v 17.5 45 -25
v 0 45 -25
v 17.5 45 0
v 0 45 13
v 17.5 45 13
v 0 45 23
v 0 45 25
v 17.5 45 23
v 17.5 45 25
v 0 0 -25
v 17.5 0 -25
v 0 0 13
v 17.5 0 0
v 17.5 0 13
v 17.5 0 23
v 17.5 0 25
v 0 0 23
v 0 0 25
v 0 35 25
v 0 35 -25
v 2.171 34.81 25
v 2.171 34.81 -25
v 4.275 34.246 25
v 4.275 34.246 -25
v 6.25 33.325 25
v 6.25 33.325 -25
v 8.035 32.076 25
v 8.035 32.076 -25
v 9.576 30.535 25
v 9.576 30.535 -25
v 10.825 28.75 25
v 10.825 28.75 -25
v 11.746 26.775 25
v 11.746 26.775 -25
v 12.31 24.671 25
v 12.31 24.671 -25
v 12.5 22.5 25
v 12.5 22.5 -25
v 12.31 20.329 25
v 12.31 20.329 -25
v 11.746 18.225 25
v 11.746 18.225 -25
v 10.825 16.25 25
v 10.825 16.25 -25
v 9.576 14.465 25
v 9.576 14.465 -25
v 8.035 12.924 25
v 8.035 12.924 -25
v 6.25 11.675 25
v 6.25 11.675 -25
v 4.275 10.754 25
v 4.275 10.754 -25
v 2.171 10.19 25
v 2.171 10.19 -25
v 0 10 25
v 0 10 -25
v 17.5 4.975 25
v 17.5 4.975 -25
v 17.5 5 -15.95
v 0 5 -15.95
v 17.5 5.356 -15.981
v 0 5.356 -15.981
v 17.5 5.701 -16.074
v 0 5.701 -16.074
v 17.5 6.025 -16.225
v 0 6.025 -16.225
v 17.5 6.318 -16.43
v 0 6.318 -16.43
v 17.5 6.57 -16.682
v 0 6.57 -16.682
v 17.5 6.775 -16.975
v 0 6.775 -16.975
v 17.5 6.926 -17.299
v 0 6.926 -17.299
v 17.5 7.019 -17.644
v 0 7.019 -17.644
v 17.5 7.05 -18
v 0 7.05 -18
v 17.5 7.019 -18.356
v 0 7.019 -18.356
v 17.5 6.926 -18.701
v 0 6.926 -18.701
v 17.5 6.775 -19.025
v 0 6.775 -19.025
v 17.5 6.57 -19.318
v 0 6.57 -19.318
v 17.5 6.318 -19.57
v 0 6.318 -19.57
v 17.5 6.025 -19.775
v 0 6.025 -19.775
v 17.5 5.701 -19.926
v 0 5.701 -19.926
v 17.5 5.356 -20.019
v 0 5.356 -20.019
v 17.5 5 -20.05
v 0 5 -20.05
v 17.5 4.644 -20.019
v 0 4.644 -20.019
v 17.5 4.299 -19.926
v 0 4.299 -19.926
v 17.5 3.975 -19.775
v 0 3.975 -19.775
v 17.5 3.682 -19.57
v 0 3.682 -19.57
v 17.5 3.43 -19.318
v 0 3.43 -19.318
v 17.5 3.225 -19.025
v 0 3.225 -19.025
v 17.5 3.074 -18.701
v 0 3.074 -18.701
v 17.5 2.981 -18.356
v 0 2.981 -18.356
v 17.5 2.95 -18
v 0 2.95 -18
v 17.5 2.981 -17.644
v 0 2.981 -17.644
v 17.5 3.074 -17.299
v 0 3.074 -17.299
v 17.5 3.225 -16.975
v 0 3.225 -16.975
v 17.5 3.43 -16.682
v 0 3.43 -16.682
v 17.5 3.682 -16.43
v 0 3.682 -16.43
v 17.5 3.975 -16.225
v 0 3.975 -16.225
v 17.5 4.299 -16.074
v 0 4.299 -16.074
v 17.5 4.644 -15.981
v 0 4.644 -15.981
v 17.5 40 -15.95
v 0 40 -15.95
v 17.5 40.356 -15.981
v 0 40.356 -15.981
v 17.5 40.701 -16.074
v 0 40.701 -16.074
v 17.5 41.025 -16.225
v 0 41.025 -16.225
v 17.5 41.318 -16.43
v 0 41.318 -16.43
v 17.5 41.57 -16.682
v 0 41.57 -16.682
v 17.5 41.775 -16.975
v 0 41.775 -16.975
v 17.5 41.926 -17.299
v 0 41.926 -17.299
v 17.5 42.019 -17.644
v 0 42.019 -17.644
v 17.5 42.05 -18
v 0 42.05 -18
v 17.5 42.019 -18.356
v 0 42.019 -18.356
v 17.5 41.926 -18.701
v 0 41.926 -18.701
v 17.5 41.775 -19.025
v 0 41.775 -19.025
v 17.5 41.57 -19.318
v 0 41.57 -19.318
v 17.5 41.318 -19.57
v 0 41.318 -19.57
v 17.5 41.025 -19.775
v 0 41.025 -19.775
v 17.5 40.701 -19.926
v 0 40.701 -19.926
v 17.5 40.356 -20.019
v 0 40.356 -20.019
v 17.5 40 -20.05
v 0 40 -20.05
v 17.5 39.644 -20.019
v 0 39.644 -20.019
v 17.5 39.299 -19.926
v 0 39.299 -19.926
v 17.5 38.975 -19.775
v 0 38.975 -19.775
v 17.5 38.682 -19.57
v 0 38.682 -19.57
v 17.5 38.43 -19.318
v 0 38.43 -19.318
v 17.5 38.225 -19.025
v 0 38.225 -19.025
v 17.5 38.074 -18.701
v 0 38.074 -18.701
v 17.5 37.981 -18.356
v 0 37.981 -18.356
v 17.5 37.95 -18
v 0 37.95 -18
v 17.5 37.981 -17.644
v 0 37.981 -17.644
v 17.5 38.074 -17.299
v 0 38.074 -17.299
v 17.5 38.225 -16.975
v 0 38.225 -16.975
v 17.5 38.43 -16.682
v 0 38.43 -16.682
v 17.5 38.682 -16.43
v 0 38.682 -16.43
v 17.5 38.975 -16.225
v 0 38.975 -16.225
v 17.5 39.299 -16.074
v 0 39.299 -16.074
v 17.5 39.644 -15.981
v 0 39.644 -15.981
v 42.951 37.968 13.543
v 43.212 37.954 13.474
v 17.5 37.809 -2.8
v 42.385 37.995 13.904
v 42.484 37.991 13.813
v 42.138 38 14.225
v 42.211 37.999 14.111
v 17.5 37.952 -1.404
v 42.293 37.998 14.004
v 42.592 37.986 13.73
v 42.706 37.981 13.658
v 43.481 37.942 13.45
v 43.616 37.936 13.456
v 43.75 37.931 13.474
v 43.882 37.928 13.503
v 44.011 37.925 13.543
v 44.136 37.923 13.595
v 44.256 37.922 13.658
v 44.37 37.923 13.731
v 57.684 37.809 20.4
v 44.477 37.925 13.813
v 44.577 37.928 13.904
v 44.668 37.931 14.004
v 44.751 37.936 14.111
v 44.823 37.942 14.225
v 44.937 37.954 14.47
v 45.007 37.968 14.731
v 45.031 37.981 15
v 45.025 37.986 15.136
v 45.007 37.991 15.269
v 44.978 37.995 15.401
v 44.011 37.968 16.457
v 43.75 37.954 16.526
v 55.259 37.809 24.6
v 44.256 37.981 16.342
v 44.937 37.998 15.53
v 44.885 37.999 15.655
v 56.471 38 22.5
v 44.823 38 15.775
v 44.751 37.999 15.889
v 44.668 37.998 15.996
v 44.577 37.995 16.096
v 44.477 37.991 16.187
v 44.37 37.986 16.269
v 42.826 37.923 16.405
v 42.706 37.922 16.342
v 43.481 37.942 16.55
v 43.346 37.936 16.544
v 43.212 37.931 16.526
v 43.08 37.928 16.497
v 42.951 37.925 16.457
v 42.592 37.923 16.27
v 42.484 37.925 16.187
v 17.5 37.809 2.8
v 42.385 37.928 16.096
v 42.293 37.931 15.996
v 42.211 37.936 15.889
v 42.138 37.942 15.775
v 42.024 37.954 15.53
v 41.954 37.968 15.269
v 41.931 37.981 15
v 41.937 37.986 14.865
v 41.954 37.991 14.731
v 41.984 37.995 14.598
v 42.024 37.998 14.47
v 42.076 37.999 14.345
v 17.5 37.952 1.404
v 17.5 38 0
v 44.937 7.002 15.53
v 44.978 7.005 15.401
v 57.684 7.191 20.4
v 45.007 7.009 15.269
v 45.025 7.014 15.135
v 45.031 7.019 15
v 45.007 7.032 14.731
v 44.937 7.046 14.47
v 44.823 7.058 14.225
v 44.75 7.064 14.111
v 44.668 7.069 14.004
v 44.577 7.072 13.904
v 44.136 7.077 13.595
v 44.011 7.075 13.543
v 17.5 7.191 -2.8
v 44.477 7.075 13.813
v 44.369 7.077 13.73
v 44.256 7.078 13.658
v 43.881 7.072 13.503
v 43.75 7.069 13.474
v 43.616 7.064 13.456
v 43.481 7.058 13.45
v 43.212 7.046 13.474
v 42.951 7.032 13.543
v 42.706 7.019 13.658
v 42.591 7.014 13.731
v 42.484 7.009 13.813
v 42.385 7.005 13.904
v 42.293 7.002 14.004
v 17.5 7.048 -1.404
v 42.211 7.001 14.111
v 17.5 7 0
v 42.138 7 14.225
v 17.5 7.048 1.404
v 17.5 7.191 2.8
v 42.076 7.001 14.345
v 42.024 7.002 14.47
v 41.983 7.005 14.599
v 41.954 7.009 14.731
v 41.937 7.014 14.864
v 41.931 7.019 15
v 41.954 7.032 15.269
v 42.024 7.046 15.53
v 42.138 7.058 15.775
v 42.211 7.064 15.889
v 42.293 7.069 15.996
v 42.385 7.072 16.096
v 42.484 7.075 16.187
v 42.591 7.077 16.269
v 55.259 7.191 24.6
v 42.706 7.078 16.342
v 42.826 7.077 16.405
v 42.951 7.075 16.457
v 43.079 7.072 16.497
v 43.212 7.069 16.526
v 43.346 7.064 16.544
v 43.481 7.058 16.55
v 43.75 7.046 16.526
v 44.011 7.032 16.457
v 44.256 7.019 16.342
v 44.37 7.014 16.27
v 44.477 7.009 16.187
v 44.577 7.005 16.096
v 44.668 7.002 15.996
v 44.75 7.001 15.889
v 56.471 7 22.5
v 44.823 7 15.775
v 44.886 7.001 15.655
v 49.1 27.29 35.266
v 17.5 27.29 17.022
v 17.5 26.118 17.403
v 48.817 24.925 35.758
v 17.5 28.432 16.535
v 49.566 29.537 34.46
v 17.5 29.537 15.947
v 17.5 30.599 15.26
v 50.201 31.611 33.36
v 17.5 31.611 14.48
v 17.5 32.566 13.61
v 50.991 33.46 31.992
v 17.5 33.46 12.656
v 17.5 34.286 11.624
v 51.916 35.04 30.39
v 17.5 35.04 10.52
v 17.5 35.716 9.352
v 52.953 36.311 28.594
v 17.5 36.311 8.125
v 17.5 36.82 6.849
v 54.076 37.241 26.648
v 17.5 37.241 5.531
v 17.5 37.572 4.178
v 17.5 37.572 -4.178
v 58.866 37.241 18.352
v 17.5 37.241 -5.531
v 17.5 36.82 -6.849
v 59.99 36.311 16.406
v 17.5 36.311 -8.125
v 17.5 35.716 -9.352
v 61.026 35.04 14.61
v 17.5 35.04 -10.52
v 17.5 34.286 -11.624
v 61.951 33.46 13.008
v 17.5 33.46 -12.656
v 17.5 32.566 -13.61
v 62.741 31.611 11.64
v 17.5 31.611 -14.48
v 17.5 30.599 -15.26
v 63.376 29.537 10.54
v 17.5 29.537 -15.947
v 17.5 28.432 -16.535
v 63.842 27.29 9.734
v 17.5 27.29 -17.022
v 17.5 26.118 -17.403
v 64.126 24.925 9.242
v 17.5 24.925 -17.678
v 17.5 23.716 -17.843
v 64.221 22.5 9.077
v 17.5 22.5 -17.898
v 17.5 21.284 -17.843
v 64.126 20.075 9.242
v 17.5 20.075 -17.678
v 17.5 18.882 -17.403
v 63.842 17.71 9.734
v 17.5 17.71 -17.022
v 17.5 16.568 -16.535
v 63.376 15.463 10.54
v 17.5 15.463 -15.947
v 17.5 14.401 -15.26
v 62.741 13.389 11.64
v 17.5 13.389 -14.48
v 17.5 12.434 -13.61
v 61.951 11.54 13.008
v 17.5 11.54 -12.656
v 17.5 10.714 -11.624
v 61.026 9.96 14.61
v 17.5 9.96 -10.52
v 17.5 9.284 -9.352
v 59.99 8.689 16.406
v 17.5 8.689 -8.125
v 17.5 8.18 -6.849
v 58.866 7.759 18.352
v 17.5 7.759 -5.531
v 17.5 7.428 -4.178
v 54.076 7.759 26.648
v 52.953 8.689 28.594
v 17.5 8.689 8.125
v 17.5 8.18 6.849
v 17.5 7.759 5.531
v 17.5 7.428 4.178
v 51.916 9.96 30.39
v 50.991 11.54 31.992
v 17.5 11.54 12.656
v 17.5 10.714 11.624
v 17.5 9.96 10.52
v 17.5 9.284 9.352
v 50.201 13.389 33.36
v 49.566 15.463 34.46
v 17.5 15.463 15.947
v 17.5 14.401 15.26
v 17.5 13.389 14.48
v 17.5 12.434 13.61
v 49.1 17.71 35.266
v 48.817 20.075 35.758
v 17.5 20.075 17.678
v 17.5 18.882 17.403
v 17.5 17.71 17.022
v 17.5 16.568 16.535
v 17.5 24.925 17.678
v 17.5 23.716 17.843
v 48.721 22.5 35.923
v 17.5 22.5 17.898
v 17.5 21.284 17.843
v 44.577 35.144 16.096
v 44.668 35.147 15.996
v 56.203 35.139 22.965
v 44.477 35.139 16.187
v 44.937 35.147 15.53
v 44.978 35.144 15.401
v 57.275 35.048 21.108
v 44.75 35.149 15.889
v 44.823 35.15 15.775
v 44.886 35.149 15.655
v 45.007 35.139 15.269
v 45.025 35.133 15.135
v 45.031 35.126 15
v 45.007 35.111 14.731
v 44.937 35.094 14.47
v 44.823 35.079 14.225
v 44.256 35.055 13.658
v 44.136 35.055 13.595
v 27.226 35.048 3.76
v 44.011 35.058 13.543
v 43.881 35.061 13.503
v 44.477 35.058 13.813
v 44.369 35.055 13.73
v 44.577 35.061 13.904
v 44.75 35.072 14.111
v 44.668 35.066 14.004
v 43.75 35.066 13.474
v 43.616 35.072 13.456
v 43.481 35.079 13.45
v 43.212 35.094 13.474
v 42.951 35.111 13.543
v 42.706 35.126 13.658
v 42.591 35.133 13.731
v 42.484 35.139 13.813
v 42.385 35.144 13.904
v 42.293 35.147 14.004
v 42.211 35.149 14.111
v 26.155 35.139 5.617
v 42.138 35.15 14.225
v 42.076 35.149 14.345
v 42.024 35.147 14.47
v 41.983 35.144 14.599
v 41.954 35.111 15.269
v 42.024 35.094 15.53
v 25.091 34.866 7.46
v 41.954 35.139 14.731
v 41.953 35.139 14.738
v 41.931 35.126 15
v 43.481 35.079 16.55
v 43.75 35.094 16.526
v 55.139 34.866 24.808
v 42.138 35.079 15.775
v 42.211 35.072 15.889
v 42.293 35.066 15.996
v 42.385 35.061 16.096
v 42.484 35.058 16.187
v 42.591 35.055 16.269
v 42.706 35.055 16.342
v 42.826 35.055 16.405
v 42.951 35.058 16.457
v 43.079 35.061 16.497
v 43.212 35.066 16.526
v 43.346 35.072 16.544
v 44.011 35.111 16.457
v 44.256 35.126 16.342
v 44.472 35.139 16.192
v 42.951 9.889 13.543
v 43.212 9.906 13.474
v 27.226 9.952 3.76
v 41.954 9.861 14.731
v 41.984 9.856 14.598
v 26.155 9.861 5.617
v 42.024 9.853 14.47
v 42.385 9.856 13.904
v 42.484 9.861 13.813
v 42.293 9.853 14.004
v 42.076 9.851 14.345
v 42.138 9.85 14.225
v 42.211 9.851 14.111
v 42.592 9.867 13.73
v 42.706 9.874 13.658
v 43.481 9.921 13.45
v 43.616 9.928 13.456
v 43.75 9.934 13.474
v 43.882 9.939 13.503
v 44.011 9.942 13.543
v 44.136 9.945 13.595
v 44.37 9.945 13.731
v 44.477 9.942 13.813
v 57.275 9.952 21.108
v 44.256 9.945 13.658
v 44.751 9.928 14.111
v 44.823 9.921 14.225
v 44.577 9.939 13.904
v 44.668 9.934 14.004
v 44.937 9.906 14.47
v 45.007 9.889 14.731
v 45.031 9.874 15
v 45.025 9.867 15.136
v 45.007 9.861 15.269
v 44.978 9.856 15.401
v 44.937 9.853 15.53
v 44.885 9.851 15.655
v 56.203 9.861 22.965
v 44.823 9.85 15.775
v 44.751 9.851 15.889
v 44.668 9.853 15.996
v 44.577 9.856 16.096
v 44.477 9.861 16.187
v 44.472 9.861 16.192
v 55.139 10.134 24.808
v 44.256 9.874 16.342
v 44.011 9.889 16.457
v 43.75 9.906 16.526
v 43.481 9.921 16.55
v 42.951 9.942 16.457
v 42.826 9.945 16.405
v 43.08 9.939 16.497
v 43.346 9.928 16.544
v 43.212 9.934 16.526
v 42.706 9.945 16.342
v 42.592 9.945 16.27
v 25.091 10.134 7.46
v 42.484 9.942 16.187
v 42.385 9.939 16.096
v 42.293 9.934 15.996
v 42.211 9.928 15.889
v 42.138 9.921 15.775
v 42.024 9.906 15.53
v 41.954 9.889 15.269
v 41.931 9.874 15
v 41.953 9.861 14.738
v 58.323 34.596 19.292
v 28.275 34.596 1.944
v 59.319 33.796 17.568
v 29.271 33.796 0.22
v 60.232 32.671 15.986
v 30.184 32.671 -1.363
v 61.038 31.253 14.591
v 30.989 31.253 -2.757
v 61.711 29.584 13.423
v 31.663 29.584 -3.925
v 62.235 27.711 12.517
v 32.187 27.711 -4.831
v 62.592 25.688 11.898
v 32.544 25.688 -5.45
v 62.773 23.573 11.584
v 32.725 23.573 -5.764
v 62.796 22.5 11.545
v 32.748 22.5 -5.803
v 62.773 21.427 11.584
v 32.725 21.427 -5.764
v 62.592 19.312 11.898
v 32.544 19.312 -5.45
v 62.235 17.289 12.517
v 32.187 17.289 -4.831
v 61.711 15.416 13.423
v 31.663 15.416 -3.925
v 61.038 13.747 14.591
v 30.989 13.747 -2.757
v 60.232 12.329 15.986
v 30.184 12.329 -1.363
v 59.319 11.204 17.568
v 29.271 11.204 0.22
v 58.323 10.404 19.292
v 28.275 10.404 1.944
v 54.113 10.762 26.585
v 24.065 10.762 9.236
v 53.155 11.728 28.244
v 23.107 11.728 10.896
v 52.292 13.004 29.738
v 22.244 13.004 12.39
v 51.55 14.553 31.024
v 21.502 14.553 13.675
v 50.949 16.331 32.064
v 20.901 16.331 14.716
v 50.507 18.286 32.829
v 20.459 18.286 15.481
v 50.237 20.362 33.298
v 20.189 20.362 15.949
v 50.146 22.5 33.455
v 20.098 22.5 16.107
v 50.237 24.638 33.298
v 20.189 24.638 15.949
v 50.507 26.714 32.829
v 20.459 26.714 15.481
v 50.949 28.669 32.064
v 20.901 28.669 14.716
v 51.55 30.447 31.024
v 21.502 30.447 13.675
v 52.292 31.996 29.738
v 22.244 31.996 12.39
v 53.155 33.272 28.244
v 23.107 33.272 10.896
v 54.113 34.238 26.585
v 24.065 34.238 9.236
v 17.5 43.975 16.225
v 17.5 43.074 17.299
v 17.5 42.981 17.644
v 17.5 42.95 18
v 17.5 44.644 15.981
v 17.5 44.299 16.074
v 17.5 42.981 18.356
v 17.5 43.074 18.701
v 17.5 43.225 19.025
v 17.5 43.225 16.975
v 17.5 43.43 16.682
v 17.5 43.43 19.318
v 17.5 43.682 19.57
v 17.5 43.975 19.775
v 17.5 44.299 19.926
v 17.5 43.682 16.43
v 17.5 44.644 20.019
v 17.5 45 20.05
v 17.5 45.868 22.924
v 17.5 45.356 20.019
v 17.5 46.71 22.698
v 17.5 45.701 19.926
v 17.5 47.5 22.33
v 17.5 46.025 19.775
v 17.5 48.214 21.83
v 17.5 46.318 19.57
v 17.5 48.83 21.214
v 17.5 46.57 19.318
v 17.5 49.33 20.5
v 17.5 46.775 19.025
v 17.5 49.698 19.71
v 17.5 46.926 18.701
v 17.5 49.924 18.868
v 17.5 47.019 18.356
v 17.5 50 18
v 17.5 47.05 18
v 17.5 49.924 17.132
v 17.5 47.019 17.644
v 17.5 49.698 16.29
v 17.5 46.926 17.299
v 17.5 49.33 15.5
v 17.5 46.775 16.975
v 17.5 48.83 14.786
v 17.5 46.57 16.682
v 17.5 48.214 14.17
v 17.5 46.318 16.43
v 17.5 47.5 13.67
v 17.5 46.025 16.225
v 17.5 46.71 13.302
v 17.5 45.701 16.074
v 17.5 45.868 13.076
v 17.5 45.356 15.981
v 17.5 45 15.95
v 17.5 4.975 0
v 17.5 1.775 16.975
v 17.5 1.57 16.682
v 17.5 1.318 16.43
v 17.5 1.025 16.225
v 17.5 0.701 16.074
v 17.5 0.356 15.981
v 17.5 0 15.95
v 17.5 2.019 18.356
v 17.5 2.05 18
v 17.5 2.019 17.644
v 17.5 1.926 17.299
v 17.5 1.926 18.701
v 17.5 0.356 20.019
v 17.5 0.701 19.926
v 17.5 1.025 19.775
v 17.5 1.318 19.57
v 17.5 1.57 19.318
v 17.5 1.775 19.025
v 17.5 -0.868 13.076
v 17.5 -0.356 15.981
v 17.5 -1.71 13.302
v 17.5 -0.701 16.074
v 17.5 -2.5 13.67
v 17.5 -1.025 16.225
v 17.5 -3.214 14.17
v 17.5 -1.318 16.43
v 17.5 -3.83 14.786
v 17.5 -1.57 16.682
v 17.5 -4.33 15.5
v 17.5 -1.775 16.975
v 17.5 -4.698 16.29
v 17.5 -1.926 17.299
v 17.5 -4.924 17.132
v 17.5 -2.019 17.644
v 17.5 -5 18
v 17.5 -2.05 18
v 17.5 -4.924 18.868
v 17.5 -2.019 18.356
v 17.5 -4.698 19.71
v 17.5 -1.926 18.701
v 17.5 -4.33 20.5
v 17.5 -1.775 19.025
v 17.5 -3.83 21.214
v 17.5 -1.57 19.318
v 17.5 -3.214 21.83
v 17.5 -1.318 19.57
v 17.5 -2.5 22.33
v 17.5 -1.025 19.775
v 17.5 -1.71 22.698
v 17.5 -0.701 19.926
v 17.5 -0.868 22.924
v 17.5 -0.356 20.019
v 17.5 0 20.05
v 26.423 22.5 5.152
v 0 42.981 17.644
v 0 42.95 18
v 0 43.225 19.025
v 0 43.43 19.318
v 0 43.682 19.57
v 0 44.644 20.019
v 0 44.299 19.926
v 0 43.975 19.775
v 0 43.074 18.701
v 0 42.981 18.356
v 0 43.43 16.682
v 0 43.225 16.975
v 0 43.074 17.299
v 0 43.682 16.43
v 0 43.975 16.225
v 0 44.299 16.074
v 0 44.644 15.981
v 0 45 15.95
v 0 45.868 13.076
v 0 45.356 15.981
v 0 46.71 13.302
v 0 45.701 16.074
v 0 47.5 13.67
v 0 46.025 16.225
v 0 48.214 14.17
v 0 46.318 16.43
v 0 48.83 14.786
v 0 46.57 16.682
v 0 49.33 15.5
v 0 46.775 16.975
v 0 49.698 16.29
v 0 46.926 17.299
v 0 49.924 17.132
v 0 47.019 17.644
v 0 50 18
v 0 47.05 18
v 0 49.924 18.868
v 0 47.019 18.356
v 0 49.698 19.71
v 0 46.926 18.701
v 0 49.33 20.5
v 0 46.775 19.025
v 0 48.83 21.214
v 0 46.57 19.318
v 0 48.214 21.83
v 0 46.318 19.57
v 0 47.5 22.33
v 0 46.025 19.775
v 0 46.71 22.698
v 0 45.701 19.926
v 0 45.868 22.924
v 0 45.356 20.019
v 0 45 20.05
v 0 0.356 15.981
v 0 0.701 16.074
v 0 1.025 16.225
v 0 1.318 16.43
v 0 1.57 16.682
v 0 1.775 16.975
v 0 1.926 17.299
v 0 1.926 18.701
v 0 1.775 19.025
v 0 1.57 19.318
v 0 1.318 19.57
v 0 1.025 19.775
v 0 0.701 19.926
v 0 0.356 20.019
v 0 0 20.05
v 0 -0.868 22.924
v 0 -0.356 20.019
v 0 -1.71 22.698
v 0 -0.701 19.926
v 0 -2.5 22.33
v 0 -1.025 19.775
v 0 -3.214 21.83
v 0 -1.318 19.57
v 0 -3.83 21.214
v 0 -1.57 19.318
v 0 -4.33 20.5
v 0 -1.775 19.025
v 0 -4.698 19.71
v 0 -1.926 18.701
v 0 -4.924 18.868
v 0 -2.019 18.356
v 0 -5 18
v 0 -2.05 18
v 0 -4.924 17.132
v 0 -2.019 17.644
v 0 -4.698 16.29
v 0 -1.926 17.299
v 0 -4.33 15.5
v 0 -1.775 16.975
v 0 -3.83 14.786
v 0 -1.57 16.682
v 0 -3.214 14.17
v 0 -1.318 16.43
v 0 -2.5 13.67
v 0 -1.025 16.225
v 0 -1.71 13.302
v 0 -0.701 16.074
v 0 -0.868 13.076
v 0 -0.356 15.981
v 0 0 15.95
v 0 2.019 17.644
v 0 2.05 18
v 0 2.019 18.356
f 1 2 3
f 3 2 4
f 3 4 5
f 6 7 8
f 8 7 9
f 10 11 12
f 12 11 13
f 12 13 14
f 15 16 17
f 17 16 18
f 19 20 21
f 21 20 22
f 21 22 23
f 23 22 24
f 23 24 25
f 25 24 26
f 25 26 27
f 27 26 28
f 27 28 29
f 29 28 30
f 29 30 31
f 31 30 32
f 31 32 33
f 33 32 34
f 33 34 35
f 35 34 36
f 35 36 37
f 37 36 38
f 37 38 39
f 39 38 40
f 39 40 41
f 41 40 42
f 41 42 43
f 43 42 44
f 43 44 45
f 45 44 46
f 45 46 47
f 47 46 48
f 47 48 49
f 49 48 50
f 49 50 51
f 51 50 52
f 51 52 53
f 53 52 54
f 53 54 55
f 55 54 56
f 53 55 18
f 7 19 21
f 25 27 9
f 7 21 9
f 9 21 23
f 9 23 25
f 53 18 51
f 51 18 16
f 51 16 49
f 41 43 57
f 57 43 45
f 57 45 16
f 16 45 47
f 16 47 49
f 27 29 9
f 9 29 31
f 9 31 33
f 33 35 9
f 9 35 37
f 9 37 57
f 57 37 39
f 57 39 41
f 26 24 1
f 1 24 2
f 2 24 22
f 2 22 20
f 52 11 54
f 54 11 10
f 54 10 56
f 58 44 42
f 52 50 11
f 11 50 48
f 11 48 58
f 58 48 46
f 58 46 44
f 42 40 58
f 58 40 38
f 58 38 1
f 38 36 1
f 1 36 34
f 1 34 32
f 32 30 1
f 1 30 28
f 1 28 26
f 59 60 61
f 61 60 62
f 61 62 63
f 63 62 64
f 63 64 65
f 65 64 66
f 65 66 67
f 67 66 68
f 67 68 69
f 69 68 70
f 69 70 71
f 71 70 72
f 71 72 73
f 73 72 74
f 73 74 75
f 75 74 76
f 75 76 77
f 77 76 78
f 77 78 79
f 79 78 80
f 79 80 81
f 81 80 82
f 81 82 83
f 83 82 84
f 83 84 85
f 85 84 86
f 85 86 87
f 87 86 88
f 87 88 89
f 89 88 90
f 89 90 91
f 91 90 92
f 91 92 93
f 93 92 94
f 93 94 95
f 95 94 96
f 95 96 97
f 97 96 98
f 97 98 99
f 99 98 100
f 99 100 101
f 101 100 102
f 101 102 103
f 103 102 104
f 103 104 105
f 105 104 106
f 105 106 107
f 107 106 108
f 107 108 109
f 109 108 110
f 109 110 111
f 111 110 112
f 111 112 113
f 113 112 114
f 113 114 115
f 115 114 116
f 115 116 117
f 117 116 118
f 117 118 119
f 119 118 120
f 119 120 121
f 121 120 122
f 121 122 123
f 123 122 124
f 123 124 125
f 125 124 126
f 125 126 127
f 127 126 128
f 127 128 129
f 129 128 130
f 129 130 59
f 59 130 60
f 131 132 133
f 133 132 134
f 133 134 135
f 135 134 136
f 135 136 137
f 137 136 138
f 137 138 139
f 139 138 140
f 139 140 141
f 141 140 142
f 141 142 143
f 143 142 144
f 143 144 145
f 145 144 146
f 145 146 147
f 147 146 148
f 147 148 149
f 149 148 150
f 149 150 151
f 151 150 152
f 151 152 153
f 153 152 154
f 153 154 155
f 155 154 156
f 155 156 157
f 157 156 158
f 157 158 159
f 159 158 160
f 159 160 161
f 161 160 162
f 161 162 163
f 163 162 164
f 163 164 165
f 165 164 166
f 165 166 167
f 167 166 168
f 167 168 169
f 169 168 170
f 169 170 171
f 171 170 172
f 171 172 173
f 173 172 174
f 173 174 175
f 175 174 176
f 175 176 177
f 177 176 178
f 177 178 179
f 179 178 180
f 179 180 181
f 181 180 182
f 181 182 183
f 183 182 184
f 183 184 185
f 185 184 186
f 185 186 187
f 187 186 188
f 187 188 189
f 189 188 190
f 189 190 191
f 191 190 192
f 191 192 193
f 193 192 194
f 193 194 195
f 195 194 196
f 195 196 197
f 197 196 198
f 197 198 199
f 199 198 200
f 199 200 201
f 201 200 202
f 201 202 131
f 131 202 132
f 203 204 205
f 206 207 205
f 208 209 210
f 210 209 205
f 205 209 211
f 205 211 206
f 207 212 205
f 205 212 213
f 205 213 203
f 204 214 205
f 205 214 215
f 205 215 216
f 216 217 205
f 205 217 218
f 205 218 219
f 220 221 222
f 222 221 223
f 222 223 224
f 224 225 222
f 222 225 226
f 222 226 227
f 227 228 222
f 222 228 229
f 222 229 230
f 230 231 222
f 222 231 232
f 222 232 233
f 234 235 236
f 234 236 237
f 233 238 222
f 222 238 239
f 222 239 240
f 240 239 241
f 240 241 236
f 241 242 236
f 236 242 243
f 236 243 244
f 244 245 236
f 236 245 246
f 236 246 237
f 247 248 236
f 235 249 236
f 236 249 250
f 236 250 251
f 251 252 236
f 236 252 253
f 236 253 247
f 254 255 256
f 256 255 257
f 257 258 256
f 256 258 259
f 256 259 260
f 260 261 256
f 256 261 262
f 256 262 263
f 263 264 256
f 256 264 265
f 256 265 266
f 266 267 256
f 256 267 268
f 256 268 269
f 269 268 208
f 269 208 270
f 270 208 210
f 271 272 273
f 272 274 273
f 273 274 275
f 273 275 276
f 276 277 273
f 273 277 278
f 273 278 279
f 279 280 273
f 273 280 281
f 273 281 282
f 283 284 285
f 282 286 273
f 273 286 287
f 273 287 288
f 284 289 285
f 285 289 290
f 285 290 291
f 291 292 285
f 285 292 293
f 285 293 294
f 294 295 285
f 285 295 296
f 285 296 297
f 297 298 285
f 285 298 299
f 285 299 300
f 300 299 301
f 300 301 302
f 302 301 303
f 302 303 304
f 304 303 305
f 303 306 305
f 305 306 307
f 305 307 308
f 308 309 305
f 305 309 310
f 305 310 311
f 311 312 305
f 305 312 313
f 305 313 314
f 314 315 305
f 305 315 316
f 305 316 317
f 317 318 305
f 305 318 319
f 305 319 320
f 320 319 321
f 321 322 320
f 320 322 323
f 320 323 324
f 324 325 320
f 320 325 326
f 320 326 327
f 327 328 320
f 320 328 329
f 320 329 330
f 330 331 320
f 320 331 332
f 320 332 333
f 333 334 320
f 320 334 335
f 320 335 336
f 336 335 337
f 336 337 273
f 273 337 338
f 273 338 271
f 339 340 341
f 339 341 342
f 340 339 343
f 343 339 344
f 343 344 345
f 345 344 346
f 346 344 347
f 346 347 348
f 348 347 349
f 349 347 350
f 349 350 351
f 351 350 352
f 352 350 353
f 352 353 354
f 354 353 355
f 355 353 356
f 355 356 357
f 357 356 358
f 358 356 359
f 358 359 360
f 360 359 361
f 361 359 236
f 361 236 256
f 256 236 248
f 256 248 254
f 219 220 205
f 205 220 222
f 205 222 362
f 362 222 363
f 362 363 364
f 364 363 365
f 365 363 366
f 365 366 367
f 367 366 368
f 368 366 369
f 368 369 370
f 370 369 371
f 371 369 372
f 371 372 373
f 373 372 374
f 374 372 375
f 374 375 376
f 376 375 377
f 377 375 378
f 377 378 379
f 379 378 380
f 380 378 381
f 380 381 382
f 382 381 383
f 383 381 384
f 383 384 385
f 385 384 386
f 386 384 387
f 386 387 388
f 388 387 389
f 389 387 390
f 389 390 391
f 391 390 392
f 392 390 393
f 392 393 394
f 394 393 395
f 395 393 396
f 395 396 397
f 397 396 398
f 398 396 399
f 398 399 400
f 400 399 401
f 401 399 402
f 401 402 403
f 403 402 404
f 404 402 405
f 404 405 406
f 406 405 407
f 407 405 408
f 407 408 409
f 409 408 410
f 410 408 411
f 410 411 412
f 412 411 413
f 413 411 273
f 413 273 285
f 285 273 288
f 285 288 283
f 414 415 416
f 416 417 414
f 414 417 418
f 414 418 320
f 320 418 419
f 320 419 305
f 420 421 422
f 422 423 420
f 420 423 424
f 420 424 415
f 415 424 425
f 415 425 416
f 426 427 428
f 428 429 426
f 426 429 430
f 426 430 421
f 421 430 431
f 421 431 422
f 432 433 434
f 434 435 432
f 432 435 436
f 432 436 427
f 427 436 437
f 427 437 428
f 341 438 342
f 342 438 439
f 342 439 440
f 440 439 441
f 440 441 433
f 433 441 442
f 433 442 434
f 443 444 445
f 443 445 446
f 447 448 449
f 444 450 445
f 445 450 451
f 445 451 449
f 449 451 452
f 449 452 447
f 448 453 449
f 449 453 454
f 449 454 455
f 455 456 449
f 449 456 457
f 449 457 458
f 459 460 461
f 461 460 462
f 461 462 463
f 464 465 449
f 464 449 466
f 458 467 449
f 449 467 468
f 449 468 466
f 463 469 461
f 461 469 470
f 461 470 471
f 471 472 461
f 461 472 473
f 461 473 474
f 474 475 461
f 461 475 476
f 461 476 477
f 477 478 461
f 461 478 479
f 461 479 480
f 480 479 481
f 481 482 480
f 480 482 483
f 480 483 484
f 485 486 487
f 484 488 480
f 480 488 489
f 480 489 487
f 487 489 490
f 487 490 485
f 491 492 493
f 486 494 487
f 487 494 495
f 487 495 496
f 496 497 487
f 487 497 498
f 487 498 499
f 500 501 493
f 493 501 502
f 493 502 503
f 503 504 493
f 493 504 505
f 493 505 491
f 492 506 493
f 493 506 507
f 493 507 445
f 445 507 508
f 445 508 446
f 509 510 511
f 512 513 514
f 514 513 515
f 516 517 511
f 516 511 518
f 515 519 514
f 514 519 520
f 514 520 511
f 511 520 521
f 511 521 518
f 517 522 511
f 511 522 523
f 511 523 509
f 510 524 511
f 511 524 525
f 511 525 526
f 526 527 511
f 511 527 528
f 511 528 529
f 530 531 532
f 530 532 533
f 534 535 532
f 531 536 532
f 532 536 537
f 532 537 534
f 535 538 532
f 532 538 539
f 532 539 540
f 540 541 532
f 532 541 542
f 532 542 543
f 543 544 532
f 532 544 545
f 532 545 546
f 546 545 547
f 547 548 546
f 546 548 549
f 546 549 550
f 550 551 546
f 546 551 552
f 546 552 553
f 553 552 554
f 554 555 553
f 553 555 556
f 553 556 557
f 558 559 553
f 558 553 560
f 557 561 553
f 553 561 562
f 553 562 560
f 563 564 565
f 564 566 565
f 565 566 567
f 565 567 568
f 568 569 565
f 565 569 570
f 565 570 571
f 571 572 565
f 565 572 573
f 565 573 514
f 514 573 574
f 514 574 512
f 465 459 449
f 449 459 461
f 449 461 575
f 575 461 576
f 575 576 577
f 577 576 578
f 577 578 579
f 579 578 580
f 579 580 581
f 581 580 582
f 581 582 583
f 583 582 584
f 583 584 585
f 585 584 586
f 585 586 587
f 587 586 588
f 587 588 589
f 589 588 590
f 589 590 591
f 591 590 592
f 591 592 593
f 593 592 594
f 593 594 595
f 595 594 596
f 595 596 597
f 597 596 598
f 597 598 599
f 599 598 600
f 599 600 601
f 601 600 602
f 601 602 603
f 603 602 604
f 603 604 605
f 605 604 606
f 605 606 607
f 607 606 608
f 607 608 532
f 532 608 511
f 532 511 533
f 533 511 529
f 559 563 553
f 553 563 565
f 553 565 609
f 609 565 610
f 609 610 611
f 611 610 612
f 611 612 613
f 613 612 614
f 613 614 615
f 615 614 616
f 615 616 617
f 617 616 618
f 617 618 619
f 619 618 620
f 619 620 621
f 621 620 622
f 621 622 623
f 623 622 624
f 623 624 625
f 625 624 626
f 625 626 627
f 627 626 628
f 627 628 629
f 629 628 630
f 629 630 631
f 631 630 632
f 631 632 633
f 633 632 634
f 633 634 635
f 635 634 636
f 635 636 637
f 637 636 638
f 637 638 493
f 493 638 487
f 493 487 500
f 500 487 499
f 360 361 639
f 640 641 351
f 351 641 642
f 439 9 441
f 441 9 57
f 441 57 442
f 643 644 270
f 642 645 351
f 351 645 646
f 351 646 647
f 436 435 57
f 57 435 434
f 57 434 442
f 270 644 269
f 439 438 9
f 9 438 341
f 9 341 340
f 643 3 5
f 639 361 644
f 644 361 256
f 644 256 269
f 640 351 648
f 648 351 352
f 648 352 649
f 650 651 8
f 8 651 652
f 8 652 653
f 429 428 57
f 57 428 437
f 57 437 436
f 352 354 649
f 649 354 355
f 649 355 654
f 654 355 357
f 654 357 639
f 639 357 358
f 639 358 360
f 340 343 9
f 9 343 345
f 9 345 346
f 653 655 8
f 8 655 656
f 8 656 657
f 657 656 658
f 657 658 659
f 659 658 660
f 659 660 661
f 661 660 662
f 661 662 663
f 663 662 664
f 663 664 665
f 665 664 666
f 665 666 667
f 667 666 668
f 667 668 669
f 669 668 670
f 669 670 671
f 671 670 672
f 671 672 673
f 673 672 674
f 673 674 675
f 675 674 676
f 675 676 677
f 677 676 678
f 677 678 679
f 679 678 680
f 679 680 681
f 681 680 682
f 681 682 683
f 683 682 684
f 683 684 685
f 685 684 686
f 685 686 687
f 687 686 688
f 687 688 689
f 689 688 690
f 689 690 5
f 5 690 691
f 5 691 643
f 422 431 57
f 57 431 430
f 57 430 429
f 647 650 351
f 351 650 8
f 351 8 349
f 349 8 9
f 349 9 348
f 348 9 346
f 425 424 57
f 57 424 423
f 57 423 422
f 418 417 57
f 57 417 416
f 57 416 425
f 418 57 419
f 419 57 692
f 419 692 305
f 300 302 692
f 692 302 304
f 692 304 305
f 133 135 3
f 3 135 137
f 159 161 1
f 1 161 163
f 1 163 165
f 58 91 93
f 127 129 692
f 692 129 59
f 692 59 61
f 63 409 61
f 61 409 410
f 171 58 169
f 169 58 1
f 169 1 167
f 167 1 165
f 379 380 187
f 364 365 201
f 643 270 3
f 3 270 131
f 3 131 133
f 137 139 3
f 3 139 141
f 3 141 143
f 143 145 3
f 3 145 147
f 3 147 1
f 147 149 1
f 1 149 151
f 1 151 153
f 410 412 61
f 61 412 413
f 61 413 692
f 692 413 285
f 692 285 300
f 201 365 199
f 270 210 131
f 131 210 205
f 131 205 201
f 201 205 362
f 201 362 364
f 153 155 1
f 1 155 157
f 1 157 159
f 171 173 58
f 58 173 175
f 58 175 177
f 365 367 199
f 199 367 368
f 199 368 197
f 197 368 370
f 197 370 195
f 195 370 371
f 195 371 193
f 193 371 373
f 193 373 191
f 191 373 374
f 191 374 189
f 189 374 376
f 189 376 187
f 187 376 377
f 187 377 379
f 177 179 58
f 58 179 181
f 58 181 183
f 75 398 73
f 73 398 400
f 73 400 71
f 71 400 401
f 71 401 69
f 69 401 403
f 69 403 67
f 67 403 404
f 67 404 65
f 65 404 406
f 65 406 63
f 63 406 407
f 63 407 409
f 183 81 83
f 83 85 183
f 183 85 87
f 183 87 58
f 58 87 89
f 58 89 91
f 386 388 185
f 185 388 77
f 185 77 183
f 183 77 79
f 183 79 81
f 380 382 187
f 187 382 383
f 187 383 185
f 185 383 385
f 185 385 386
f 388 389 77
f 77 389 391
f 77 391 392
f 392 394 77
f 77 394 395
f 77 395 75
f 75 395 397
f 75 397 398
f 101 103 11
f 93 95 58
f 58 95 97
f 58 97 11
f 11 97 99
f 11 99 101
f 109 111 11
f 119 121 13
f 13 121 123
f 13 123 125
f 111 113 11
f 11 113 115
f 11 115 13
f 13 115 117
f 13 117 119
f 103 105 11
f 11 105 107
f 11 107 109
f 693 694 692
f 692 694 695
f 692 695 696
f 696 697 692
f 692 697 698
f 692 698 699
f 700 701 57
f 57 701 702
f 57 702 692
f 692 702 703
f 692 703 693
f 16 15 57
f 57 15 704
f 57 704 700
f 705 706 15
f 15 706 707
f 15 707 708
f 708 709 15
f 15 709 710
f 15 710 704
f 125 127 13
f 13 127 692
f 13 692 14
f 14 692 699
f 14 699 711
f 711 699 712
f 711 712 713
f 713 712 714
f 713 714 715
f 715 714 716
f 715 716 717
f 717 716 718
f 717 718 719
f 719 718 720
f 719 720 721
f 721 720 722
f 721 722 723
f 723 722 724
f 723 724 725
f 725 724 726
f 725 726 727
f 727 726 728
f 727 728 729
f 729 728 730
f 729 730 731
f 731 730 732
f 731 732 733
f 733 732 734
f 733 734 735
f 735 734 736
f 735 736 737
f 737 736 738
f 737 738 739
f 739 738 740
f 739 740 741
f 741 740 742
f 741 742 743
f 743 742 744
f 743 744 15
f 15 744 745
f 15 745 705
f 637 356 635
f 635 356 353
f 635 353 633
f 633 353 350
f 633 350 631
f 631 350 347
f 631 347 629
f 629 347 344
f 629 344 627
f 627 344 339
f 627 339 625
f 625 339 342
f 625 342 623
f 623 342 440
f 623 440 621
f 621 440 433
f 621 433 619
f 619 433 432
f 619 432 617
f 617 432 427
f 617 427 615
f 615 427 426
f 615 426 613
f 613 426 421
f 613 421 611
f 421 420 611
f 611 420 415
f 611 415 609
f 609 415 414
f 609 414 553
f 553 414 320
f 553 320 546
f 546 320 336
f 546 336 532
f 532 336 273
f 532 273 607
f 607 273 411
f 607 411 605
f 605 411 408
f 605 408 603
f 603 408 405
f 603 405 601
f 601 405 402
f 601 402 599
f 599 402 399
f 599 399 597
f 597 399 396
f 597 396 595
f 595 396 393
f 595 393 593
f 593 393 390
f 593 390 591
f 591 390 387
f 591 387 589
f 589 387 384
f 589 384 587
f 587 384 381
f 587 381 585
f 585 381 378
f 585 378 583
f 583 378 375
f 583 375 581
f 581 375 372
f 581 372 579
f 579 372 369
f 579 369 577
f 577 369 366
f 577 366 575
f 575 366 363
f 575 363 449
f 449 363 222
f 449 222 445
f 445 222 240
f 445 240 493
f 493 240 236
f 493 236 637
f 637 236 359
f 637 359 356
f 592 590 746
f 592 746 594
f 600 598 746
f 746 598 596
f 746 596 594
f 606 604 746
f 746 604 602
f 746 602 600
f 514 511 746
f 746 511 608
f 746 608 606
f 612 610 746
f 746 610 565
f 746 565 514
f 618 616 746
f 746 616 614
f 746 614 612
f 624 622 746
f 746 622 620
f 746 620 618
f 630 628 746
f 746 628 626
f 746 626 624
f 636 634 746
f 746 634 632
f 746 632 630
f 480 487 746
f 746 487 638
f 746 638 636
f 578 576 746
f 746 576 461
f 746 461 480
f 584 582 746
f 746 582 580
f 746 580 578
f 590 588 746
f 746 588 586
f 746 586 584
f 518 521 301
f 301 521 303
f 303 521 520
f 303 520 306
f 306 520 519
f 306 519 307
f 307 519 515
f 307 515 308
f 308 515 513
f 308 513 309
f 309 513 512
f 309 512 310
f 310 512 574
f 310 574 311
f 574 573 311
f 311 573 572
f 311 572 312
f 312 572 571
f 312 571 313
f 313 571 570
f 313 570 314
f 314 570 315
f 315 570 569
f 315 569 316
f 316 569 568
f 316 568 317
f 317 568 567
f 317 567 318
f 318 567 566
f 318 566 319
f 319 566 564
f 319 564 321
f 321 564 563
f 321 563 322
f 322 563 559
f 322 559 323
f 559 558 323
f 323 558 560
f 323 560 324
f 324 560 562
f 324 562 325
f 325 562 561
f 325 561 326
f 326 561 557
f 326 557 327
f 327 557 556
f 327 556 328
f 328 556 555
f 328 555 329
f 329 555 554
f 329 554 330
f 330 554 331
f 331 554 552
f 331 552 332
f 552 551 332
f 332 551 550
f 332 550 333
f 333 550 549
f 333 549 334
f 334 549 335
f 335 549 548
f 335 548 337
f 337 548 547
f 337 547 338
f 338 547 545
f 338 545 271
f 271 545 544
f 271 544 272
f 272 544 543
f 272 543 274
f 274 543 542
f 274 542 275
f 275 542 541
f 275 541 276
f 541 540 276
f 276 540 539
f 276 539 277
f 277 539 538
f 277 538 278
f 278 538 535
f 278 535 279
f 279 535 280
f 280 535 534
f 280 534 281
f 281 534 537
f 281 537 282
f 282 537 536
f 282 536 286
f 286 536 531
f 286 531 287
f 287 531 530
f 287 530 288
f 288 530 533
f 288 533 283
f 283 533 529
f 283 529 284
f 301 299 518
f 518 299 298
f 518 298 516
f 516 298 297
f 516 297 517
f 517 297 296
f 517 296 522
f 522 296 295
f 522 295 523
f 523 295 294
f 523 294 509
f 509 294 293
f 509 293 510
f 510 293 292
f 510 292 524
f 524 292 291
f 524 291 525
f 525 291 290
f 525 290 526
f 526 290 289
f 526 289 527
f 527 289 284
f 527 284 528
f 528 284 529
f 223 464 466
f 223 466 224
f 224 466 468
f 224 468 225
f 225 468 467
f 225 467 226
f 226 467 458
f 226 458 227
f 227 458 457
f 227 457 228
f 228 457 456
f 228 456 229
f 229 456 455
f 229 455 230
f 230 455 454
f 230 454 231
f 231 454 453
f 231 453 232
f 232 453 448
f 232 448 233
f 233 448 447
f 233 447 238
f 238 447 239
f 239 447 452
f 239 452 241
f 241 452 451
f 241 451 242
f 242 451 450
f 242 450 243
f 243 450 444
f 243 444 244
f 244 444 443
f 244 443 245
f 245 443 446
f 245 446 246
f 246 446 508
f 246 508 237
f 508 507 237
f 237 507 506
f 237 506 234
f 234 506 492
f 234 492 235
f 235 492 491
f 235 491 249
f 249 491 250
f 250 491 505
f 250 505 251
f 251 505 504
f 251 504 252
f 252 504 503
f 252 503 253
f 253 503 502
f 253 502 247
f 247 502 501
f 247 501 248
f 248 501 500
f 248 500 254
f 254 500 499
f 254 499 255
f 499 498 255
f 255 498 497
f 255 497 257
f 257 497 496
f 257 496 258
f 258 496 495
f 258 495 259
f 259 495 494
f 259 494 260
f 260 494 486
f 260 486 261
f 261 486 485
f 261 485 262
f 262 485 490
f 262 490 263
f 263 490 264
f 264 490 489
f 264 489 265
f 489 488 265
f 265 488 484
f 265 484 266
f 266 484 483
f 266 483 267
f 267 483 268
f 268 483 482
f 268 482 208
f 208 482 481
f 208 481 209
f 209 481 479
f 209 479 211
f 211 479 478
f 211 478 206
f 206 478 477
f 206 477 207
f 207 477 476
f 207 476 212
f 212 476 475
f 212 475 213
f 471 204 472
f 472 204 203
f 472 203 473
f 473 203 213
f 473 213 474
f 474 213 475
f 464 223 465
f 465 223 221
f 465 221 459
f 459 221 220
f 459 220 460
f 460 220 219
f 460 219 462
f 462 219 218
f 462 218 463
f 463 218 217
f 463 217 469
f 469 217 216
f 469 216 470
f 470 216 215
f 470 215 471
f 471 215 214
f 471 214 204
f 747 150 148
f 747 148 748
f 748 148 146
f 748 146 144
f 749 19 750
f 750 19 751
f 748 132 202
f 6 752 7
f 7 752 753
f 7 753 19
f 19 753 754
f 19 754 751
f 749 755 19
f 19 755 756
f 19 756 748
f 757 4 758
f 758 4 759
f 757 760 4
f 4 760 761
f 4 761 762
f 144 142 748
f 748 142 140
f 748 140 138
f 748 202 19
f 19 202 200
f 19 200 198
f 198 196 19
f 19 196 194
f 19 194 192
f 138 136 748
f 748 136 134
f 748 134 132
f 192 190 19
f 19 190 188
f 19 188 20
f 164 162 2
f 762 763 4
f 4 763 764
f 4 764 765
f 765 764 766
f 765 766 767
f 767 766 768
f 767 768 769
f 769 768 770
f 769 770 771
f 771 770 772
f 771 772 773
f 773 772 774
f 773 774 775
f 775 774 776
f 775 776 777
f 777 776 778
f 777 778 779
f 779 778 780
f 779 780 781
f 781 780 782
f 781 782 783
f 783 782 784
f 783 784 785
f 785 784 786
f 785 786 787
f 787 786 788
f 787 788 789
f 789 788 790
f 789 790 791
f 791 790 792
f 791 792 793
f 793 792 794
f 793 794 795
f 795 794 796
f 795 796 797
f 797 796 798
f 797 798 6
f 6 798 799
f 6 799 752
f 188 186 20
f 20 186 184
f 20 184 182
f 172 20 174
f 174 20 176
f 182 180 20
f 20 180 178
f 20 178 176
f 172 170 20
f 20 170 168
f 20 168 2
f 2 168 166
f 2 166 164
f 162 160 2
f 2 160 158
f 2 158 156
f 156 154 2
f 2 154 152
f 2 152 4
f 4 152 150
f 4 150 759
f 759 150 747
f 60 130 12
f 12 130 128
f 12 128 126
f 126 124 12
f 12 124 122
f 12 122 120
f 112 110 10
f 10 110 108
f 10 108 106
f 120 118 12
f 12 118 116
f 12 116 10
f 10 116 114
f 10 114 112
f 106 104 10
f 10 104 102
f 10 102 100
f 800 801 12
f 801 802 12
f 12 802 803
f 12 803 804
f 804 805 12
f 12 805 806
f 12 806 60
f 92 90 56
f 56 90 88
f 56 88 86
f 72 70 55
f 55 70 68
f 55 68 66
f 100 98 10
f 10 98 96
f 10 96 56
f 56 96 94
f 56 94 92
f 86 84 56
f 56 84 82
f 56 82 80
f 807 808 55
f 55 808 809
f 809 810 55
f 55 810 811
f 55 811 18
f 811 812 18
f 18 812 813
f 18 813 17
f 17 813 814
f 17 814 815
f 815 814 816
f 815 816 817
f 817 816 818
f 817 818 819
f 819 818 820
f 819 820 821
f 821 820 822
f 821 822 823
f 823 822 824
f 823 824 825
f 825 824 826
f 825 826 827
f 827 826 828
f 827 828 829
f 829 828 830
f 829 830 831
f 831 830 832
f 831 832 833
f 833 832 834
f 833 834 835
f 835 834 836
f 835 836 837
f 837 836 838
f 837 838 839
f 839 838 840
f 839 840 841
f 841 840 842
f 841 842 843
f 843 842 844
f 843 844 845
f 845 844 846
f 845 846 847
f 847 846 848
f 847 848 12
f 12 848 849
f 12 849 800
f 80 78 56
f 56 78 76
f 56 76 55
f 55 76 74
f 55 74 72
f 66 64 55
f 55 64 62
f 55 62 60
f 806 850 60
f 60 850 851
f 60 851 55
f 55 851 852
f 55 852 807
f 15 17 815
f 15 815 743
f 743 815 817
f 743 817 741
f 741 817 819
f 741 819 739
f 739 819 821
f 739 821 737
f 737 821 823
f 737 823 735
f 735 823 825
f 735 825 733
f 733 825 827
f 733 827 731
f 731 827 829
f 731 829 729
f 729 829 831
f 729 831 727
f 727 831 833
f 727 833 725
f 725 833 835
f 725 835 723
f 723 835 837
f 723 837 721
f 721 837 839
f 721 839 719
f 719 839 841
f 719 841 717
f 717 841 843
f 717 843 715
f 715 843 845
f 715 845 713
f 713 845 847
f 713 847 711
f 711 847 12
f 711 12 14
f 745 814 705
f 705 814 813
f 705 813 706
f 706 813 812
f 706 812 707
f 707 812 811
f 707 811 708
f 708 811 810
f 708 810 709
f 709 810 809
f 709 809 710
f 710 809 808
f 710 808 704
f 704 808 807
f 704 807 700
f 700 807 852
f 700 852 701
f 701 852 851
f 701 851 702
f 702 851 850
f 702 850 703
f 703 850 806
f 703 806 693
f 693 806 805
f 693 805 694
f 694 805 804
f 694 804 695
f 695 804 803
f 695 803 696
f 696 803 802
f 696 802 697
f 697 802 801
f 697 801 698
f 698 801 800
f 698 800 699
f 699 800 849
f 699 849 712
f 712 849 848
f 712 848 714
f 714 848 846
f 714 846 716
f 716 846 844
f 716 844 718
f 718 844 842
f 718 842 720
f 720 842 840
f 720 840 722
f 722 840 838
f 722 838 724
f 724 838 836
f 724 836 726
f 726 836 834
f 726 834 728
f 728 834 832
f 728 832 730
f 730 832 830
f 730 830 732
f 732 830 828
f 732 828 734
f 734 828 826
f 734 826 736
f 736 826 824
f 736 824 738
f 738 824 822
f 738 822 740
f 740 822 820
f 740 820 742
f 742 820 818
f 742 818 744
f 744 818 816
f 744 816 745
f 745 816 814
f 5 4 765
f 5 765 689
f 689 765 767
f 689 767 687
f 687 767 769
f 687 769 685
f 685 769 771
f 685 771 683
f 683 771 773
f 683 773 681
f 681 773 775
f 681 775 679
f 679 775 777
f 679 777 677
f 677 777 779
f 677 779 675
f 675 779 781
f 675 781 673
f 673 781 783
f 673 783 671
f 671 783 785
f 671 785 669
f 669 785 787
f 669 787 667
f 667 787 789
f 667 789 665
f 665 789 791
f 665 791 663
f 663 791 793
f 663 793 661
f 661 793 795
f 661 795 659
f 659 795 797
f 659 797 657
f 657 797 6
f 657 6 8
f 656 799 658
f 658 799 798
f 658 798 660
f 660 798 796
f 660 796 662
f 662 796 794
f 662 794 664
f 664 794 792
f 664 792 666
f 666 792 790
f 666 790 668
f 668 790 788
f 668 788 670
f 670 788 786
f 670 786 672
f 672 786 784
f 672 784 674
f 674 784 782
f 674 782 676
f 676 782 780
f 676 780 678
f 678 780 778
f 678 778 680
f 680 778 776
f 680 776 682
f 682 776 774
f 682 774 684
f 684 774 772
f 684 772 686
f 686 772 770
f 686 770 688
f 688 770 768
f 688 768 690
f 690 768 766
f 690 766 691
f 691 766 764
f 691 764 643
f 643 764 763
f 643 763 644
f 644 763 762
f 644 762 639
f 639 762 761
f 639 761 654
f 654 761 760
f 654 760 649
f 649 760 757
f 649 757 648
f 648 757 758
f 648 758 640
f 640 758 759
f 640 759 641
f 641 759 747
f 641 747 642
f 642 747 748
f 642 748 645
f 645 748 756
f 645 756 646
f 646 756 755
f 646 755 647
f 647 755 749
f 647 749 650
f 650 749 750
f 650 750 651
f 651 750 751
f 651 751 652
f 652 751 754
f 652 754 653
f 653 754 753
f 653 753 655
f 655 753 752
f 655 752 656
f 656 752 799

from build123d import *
from build123d.topology import SkipClean

# Parameters (mm, degrees)
BOSS_EXTRUDE1_DEPTH             = 25
BOSS_EXTRUDE2_REACH             = 65.362
BOSS_EXTRUDE2_DIRECTION_2_DEPTH = 30
SKETCH9_R                       = 2.05
CUT_EXTRUDE3_DEPTH              = 35
BOSS_EXTRUDE5_REACH             = 62.896
SKETCH13_R                      = 1.55
CUT_EXTRUDE4_DEPTH              = 87.254538717
SKETCH16_W                      = 50
SKETCH16_H                      = 45
CUT_EXTRUDE5_DEPTH              = 17.5
BOSS_EXTRUDE6_DEPTH             = 17.5
SKETCH20_R                      = 2.05
CUT_EXTRUDE6_DEPTH              = 17.5


with BuildPart() as part:
    # Sketch1 → Boss-Extrude1 (new, symmetric)
    with BuildSketch(Plane.XY):
        with BuildLine():
            Line((-17.5, 22.5), (-17.5, 0))
            Line((-17.5, 0), (17.5, 0))
            Line((17.5, 0), (17.5, 22.5))
            Line((17.5, 22.5), (12.5, 22.5))
            ThreePointArc((12.5, 22.5), (0, 10), (-12.5, 22.5))
            Line((-12.5, 22.5), (-17.5, 22.5))
        make_face()
    boss_extrude1 = extrude(amount=BOSS_EXTRUDE1_DEPTH, both=True)

    # Boss-Extrude2: up to this face of the body (flat: up to its plane)
    boss_extrude2_end = Plane(part.part.faces().sort_by_distance((17.5, 11.25, 0))[0])
    # Sketch5 → Boss-Extrude2 (add, up to the picked face)
    with BuildSketch(Plane(origin=(26.115381057, 0, 15.077722283), x_dir=(0.500000000000001, 0, -0.8660254037844382), z_dir=(0.8660254037844382, 0, 0.500000000000001)), mode=Mode.PRIVATE) as boss_extrude2_sk1:
        with BuildLine():
            Line((-6.75, 22.5), (-3.9, 22.5))
            ThreePointArc((-3.9, 22.5), (8.75, 9.85), (21.4, 22.5))
            Line((21.4, 22.5), (24.25, 22.5))
            ThreePointArc((24.25, 22.5), (8.75, 7), (-6.75, 22.5))
        make_face()
    boss_extrude2_tool1 = split(extrude(boss_extrude2_sk1.sketch, amount=-BOSS_EXTRUDE2_REACH, mode=Mode.PRIVATE), bisect_by=boss_extrude2_end, keep=Keep.BOTH, mode=Mode.PRIVATE)
    boss_extrude2 = boss_extrude2_tool1.solids().sort_by(Axis((23.452881, 22.153409, 19.689308), (-0.8660254037844382, 0, -0.500000000000001)))[0]
    add(boss_extrude2)

    # Sketch5 → Boss-Extrude2 direction 2 (add)
    with BuildSketch(Plane(origin=(26.115381057, 0, 15.077722283), x_dir=(0.500000000000001, 0, -0.8660254037844382), z_dir=(0.8660254037844382, 0, 0.500000000000001))):
        with BuildLine():
            Line((-6.75, 22.5), (-3.9, 22.5))
            ThreePointArc((-3.9, 22.5), (8.75, 9.85), (21.4, 22.5))
            Line((21.4, 22.5), (24.25, 22.5))
            ThreePointArc((24.25, 22.5), (8.75, 7), (-6.75, 22.5))
        make_face()
    boss_extrude2_direction_2 = extrude(amount=BOSS_EXTRUDE2_DIRECTION_2_DEPTH)

    # Sketch9 → Cut-Extrude3 (cut)
    with BuildSketch(Plane.ZY.offset(17.5)):
        with Locations((-18, 5)):
            Circle(SKETCH9_R)
    cut_extrude3 = extrude(amount=-CUT_EXTRUDE3_DEPTH, mode=Mode.SUBTRACT)

    # Boss-Extrude5: up to this face of the body (flat: up to its plane)
    boss_extrude5_end = Plane(part.part.faces().sort_by_distance((17.5, 17.131173253, 0))[0])
    # Sketch12 → Boss-Extrude5 (add, up to the picked face)
    with BuildSketch(Plane(origin=(22.048076211, 0, 12.729462736), x_dir=(0.4999999999999999, 0, -0.8660254037844388), z_dir=(0.8660254037844388, 0, 0.4999999999999999)), mode=Mode.PRIVATE) as boss_extrude5_sk1:
        with BuildLine():
            Line((-3.9, 22.5), (21.4, 22.5))
            ThreePointArc((21.4, 22.5), (8.75, 9.85), (-3.9, 22.5))
        make_face()
    boss_extrude5_tool1 = split(extrude(boss_extrude5_sk1.sketch, amount=-BOSS_EXTRUDE5_REACH, mode=Mode.PRIVATE), bisect_by=boss_extrude5_end, keep=Keep.BOTH, mode=Mode.PRIVATE)
    boss_extrude5 = boss_extrude5_tool1.solids().sort_by(Axis((26.423076, 17.131173, 5.15174), (-0.8660254037844388, 0, -0.4999999999999999)))[0]
    add(boss_extrude5)

    # Mirror1: Boss-Extrude1, Boss-Extrude2, Boss-Extrude2 direction 2, Cut-Extrude3, Boss-Extrude5 across plane
    with SkipClean():  # the faces are left unmerged after this step: merging them gives an invalid solid
        add(boss_extrude1.mirror(Plane(origin=(17.5, 22.5, 25), x_dir=(0, 0, 1), z_dir=(0, -1, 0))))
        add(boss_extrude2.mirror(Plane(origin=(17.5, 22.5, 25), x_dir=(0, 0, 1), z_dir=(0, -1, 0))))
        add(boss_extrude2_direction_2.mirror(Plane(origin=(17.5, 22.5, 25), x_dir=(0, 0, 1), z_dir=(0, -1, 0))))
        add(cut_extrude3.mirror(Plane(origin=(17.5, 22.5, 25), x_dir=(0, 0, 1), z_dir=(0, -1, 0))), mode=Mode.SUBTRACT)
        add(boss_extrude5.mirror(Plane(origin=(17.5, 22.5, 25), x_dir=(0, 0, 1), z_dir=(0, -1, 0))))

    # Sketch13 → Cut-Extrude4 (cut, through all)
    with SkipClean():  # the faces are left unmerged after this step: merging them gives an invalid solid
        with BuildSketch(Plane(origin=(0, 0, 0), x_dir=(1, 0, 0), z_dir=(0, 1, 0))):
            with Locations(Location((43.480762114, -15, 0), (0, 0, 90))):
                Circle(SKETCH13_R)
        extrude(amount=CUT_EXTRUDE4_DEPTH, mode=Mode.SUBTRACT)

    # Sketch16 → Cut-Extrude5 (cut)
    with SkipClean():  # the faces are left unmerged after this step: merging them gives an invalid solid
        with BuildSketch(Plane(origin=(0, 0, 0), x_dir=(0, 0, -1), z_dir=(1, 0, 0))):
            with Locations((0, 22.5)):
                Rectangle(SKETCH16_W, SKETCH16_H)
        extrude(amount=-CUT_EXTRUDE5_DEPTH, mode=Mode.SUBTRACT)
    add(part.part.scale(1), mode=Mode.REPLACE)  # the faces are merged on a copy

    # Sketch18 → Boss-Extrude6 (add)
    with BuildSketch(Plane.ZY):
        with BuildLine():
            Line((13, 0), (23, 0))
            ThreePointArc((23, 0), (18, -5), (13, 0))
        make_face()
    boss_extrude6 = extrude(amount=-BOSS_EXTRUDE6_DEPTH)

    # Sketch20 → Cut-Extrude6 (cut)
    with BuildSketch(Plane.ZY):
        with Locations((18, 0)):
            Circle(SKETCH20_R)
    cut_extrude6 = extrude(amount=-CUT_EXTRUDE6_DEPTH, mode=Mode.SUBTRACT)

    # Mirror2: Boss-Extrude6, Cut-Extrude6 across plane
    add(boss_extrude6.mirror(Plane.ZX.offset(22.5)))
    add(cut_extrude6.mirror(Plane.ZX.offset(22.5)), mode=Mode.SUBTRACT)


solid = part.part
